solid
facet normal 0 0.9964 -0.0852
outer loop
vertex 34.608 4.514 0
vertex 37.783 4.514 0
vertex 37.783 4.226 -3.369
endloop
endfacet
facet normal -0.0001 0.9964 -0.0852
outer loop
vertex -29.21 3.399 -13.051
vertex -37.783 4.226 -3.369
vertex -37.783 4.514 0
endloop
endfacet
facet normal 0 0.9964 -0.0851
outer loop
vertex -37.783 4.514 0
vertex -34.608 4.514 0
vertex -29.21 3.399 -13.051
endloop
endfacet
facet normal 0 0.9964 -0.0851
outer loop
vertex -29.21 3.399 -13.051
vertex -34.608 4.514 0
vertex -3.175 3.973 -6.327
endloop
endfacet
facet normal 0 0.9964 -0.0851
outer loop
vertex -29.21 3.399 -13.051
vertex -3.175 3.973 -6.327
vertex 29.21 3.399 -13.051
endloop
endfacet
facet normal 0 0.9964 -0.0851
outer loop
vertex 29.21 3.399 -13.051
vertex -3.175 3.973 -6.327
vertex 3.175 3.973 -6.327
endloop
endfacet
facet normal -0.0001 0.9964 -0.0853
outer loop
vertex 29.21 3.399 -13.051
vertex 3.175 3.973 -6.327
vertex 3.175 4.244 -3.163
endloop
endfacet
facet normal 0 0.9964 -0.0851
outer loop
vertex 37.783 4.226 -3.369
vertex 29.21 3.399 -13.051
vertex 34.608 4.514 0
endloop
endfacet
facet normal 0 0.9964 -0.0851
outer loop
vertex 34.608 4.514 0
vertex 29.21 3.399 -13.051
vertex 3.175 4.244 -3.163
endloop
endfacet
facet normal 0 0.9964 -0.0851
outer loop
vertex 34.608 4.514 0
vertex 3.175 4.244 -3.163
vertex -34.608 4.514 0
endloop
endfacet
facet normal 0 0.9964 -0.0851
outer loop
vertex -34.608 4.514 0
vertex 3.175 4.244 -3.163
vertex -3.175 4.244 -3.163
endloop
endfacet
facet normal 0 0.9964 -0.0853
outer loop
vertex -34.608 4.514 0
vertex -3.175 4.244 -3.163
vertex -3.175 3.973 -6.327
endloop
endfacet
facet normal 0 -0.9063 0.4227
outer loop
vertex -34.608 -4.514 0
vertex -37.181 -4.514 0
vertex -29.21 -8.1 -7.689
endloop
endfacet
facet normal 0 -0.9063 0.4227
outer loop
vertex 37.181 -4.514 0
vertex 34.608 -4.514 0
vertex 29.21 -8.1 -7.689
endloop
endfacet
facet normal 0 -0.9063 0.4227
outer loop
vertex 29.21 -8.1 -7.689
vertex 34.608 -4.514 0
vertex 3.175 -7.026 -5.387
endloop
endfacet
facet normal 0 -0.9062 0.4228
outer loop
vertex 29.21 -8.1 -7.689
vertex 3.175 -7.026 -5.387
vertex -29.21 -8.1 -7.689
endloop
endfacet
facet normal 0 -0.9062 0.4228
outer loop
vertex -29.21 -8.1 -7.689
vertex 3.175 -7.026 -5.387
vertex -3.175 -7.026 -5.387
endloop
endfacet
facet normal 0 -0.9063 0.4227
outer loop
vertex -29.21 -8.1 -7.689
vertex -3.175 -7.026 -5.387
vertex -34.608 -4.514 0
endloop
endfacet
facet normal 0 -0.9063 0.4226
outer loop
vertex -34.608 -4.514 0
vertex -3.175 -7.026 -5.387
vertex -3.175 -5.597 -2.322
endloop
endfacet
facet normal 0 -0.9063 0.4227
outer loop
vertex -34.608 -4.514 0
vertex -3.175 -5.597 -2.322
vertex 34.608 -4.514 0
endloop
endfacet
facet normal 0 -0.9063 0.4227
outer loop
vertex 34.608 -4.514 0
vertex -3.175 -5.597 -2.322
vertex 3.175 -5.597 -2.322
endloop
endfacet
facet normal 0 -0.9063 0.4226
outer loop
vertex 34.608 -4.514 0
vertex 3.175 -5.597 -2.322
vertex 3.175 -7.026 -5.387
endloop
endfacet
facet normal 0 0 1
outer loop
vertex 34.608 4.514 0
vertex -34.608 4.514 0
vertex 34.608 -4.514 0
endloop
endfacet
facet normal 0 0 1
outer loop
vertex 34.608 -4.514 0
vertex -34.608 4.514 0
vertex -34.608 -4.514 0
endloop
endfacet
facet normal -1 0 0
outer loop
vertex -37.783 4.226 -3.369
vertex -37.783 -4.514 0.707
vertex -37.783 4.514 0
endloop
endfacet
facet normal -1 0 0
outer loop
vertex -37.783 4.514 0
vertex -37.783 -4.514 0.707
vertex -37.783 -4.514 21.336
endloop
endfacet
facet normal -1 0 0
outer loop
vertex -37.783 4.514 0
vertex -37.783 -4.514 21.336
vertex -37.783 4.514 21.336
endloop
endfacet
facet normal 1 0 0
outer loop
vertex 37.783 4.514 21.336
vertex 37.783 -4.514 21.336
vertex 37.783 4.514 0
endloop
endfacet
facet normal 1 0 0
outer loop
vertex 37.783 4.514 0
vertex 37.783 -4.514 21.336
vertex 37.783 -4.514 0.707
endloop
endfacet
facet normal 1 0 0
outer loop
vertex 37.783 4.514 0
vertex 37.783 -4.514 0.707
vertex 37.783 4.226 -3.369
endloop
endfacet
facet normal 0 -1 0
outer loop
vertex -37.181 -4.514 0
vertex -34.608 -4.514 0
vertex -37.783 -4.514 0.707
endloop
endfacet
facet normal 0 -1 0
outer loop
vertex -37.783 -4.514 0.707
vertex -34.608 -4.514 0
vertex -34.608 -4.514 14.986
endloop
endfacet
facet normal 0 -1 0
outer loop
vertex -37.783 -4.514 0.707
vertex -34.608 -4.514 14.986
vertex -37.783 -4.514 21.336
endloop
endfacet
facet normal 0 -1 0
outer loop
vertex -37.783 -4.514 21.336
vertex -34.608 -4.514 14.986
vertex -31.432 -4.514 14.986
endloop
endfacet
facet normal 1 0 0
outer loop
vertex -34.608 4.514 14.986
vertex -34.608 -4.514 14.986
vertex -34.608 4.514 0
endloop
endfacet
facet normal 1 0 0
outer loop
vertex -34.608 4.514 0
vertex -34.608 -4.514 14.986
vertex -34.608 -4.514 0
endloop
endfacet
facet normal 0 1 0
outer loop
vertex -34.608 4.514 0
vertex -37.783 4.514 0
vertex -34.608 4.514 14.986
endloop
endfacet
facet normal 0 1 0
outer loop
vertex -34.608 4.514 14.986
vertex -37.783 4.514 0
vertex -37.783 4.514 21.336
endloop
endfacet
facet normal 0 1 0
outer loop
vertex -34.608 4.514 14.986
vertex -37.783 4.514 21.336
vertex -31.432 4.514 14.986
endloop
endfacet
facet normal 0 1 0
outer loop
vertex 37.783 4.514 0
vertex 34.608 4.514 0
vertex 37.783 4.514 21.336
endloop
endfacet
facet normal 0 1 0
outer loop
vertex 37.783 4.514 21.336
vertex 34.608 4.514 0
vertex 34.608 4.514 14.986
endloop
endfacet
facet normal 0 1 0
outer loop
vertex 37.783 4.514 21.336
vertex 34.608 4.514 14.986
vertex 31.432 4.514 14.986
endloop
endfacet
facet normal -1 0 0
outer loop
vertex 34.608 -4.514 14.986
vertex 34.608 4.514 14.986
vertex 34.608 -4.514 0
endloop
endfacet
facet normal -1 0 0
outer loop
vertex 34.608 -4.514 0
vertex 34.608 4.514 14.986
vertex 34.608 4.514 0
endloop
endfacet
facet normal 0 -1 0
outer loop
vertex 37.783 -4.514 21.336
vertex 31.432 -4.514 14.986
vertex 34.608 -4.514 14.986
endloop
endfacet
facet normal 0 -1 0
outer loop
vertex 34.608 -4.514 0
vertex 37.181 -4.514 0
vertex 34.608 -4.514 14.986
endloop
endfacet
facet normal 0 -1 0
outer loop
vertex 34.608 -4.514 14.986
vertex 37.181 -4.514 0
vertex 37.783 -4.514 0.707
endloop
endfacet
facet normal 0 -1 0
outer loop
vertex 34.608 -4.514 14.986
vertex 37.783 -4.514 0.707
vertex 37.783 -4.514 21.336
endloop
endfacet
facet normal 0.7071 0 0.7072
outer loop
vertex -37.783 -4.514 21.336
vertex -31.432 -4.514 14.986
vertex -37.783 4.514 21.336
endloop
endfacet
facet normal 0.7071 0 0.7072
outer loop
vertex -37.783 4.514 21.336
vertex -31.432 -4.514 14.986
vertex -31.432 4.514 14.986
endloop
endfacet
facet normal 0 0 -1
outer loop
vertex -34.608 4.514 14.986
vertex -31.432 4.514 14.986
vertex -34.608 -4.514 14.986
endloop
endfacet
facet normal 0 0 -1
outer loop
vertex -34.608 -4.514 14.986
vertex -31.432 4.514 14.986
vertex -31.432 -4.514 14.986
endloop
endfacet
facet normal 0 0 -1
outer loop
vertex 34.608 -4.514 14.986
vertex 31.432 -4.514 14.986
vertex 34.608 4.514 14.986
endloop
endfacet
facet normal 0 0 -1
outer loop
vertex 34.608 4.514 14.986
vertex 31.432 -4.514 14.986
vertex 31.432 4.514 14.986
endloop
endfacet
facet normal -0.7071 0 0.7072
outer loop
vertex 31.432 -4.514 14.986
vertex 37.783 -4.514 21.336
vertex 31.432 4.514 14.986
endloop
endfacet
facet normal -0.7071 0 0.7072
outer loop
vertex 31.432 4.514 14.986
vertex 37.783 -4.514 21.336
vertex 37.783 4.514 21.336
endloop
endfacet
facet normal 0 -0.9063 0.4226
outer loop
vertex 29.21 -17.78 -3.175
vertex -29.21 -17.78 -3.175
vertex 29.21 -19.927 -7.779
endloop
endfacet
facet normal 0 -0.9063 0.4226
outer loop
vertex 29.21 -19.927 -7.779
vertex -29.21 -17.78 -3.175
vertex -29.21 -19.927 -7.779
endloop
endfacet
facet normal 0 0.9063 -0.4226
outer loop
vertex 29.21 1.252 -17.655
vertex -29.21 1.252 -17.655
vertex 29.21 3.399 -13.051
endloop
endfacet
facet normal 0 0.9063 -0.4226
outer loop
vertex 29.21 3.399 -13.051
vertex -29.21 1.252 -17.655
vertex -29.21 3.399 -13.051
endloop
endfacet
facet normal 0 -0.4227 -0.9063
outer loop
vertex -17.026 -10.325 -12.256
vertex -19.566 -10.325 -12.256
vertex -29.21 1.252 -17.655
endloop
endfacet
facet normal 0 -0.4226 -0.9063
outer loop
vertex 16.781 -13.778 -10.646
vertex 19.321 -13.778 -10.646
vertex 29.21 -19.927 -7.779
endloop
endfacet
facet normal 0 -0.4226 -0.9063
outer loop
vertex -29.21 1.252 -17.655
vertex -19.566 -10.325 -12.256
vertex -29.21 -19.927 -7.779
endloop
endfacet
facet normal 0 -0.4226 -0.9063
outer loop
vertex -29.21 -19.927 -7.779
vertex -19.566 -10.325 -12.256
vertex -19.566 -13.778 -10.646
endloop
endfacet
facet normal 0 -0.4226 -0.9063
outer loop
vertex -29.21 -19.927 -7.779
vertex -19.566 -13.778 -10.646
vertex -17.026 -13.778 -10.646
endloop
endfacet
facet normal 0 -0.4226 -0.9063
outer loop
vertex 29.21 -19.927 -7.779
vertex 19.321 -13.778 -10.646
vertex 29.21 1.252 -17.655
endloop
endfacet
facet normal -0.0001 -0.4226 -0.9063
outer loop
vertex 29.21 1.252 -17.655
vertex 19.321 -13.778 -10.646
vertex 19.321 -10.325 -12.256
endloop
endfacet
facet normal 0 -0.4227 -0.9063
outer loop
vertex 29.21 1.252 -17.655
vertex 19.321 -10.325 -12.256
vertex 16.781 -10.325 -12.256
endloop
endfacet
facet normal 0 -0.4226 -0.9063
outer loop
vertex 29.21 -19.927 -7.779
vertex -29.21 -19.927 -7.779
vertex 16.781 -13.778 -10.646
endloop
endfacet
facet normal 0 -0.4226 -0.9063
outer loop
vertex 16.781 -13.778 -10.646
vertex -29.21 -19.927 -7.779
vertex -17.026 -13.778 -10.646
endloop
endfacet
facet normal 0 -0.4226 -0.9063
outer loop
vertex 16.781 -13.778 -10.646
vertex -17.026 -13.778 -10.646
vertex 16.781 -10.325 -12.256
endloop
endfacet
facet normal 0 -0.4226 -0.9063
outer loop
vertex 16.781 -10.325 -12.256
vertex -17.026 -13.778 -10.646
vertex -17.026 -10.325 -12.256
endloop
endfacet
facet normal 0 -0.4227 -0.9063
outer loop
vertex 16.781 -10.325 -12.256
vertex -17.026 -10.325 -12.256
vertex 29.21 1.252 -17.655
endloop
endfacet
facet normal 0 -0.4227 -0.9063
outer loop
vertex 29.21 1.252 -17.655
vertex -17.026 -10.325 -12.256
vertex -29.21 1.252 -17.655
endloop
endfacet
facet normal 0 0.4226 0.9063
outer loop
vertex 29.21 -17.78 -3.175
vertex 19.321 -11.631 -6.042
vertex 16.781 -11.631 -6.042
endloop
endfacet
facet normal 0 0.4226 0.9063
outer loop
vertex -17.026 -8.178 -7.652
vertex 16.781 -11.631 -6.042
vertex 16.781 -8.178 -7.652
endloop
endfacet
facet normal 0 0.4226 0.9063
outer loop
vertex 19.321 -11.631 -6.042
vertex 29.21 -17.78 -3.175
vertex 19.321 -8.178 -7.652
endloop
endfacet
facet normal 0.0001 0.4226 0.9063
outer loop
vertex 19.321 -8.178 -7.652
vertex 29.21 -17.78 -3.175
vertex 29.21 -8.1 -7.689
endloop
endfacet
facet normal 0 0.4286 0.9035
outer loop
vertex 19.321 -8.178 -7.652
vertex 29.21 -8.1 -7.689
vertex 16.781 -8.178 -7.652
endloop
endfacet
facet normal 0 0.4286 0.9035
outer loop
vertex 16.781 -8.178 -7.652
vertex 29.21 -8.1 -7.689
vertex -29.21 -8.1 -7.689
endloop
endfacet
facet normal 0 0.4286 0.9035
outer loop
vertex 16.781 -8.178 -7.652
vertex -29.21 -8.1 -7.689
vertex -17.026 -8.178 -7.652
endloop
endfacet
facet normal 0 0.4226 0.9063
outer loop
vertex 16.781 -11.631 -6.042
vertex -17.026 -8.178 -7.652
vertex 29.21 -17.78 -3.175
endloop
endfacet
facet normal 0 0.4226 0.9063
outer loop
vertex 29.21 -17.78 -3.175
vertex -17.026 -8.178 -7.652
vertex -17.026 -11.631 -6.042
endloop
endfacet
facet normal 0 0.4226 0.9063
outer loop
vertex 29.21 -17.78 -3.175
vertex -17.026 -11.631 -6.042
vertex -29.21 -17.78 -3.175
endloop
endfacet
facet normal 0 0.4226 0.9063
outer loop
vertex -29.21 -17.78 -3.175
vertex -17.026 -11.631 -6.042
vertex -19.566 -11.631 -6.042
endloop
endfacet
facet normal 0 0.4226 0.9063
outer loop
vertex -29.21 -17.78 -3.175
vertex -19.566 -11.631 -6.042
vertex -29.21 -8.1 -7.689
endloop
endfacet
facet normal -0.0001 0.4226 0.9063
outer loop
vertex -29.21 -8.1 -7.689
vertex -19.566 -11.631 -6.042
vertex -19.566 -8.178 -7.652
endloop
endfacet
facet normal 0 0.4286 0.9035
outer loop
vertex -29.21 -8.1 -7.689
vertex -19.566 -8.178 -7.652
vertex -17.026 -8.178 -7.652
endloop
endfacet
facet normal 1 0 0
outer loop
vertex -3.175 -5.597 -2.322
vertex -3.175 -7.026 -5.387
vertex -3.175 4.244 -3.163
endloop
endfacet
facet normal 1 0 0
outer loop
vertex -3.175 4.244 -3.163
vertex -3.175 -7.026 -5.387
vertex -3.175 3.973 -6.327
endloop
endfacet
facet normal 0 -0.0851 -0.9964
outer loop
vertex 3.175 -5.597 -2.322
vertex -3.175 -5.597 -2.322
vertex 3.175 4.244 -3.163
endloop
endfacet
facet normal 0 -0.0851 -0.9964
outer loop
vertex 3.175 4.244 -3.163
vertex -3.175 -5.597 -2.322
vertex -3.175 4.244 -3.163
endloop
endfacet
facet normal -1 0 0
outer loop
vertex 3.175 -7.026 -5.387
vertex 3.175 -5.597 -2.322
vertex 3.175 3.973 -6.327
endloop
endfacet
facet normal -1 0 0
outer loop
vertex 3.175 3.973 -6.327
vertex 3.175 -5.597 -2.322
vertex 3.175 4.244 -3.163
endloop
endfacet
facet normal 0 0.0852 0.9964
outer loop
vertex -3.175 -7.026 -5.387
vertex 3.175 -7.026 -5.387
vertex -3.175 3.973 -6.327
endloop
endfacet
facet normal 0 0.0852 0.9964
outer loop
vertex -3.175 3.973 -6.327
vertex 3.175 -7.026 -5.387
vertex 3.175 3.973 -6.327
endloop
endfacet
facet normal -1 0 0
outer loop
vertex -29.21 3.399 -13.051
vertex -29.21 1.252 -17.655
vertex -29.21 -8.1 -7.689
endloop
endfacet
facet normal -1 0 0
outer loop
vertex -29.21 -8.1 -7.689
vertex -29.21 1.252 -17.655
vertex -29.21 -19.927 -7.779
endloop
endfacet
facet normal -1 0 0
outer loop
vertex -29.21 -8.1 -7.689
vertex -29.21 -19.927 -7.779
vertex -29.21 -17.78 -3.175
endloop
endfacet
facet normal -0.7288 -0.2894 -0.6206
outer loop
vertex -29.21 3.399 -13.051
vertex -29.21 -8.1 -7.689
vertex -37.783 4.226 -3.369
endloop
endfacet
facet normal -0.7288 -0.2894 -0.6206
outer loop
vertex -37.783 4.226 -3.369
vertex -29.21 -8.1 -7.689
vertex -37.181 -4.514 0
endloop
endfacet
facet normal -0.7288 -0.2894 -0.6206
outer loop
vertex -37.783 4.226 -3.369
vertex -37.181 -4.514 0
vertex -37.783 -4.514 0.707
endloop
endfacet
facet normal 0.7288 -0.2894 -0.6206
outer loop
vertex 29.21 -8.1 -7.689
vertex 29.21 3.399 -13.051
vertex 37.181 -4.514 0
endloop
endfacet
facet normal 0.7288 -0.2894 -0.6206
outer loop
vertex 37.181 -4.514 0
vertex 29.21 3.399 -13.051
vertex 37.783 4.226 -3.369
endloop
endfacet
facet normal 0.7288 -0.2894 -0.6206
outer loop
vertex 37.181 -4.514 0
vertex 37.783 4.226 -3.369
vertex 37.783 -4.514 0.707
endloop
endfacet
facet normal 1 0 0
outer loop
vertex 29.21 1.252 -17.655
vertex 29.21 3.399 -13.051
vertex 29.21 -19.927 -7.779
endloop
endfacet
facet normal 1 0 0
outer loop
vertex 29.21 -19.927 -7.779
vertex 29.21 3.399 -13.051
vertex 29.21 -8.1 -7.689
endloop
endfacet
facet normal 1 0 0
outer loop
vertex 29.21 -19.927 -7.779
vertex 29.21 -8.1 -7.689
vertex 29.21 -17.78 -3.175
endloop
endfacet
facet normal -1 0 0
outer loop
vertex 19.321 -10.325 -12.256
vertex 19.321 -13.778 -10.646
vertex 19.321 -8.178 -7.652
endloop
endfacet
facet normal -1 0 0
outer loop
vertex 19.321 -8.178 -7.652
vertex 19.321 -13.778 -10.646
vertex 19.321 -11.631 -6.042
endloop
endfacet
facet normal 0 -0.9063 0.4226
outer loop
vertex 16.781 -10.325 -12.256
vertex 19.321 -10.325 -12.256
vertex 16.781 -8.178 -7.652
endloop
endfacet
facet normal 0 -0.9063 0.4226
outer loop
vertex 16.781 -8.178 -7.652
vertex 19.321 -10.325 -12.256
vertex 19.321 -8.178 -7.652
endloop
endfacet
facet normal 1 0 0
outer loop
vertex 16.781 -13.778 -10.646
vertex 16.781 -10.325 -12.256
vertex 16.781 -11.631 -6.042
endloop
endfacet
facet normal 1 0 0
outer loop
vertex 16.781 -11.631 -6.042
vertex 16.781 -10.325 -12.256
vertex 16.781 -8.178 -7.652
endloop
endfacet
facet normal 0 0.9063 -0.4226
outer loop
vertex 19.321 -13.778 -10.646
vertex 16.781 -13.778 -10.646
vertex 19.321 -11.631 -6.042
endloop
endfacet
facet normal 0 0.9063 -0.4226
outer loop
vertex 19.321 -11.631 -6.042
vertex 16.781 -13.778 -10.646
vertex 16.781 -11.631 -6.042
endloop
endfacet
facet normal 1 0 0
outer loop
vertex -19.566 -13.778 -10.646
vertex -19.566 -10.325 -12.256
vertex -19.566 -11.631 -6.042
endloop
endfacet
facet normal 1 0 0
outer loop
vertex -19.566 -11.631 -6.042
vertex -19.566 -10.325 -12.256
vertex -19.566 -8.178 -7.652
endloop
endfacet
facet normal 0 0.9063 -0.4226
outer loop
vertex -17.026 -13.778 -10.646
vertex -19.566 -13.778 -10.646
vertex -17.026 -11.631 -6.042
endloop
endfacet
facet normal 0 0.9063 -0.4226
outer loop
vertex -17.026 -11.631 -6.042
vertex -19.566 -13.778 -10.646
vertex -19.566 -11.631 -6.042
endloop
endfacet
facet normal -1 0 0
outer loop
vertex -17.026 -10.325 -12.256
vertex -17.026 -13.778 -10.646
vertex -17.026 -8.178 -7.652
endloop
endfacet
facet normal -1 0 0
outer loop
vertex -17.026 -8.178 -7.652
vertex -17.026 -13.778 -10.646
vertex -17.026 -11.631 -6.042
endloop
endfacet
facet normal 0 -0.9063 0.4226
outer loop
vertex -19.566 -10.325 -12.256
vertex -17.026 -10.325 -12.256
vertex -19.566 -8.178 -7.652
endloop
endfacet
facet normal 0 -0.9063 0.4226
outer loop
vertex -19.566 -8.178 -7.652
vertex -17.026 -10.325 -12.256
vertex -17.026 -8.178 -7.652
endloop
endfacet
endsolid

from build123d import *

# Parameters (mm, degrees)
SKETCH1_W                      = 75.565
SKETCH1_H                      = 35.56
BOSS_EXTRUDE1_DEPTH            = 3.175
SKETCH6_W                      = 3.175
SKETCH6_H                      = 9.028368652
BOSS_EXTRUDE4_DEPTH            = 14.986
BOSS_EXTRUDE6_DEPTH            = 9.028368652
BOSS_EXTRUDE7_DEPTH            = 75.565
SKETCH10_W                     = 75.565
SKETCH10_H                     = 23.368
BOSS_EXTRUDE8_DEPTH            = 5.08
CUT_EXTRUDE1_DEPTH             = 82.008490267
CUT_EXTRUDE2_REACH             = 51.95
SKETCH12_W                     = 6.35
SKETCH12_H                     = 3.175
CUT_EXTRUDE2_DIRECTION_2_DEPTH = 50.950000932
CUT_EXTRUDE3_DEPTH             = 54.096105705
CUT_EXTRUDE4_REACH             = 55.451
SKETCH14_W                     = 2.54
SKETCH14_H                     = 3.81


with BuildPart() as part:
    # Sketch1 → Boss-Extrude1 (new body)
    with BuildSketch(Plane.XY):
        Rectangle(SKETCH1_W, SKETCH1_H)
    extrude(amount=-BOSS_EXTRUDE1_DEPTH)

    # Sketch6 → Boss-Extrude4 (add)
    with BuildSketch(Plane.XY):
        with Locations((-36.195, 0)):
            Rectangle(SKETCH6_W, SKETCH6_H)
        with Locations((36.195, 0)):
            Rectangle(SKETCH6_W, SKETCH6_H)
    extrude(amount=BOSS_EXTRUDE4_DEPTH)

    # Sketch8 → Boss-Extrude6 (add)
    with BuildSketch(Plane.XZ.offset(4.514184326)):
        Polygon((-37.7825, 14.986), (-31.4325, 14.986), (-37.7825, 21.336), align=None)
        Polygon((37.7825, 14.986), (31.4325, 14.986), (37.7825, 21.336), align=None)
    extrude(amount=-BOSS_EXTRUDE6_DEPTH)

    # Sketch9 → Boss-Extrude7 (add)
    with BuildSketch(Plane.ZY.offset(37.7825)):
        Polygon((-3.175, 17.78), (-16.795270199, 11.4287637), (-3.175, -17.78), align=None)
    extrude(amount=-BOSS_EXTRUDE7_DEPTH)

    # Sketch10 → Boss-Extrude8 (add)
    with BuildSketch(Plane(origin=(0, -4.391713703, -9.41806043), x_dir=(-1, 0, 0), z_dir=(0, -0.4226182617407007, -0.9063077870366493))):
        with Locations((0, -3.088339472)):
            Rectangle(SKETCH10_W, SKETCH10_H)
    extrude(amount=BOSS_EXTRUDE8_DEPTH)

    # Sketch11 → Cut-Extrude1 (cut, through all)
    with BuildSketch(Plane.ZY.offset(37.7825)):
        Polygon((-13.05074354, 3.398600367), (0, 4.514184326), (36.888684706, 18.275511072), (5.286071508, 25.150339228), (-30.3838484, 8.233222823), align=None)
        Polygon((-3.175, -17.78), (-7.689027521, -8.099636743), (0, -4.514184326), (40.158547499, -20.406390647), (15.599703883, -25.394905756), align=None)
    extrude(amount=-CUT_EXTRUDE1_DEPTH, mode=Mode.SUBTRACT)

    # Cut-Extrude2: up to this plane
    cut_extrude2_end = Plane(origin=(37.7825, -8.099636743, -7.689027521), z_dir=(0, 0.9063077870366495, -0.4226182617407008))
    # Sketch12 → Cut-Extrude2 (cut, up to the surface)
    with BuildSketch(Plane(origin=(0, 4.481438837, -0.38307559), x_dir=(1, 0, 0), z_dir=(0, 0.9963664433600627, -0.08516989225083536)), mode=Mode.PRIVATE) as cut_extrude2_sk1:
        with Locations((0, 4.378027407)):
            Rectangle(SKETCH12_W, SKETCH12_H)
    cut_extrude2_tool1 = split(extrude(cut_extrude2_sk1.sketch, amount=-CUT_EXTRUDE2_REACH, mode=Mode.PRIVATE), bisect_by=cut_extrude2_end, keep=Keep.BOTH, mode=Mode.PRIVATE)
    add(cut_extrude2_tool1.solids().sort_by_distance((0, 4.108563, -4.745195))[0], mode=Mode.SUBTRACT)

    # Sketch12 → Cut-Extrude2 direction 2 (cut)
    with BuildSketch(Plane(origin=(0, 4.481438837, -0.38307559), x_dir=(1, 0, 0), z_dir=(0, 0.9963664433600627, -0.08516989225083536))):
        with Locations((0, 4.378027407)):
            Rectangle(SKETCH12_W, SKETCH12_H)
    extrude(amount=CUT_EXTRUDE2_DIRECTION_2_DEPTH, mode=Mode.SUBTRACT)

    # Sketch13 → Cut-Extrude3 (cut, through all)
    with BuildSketch(Plane(origin=(0, 7.790314071, -3.632683111), x_dir=(1, 0, 0), z_dir=(0, 0.9063077870366493, -0.4226182617407007))):
        Polygon((-29.21, 10.391679918), (-37.7825, 1.267223267), (-37.7825, 11.639630657), (-37.7825, 15.471679918), (-29.21, 15.471679918), align=None)
        Polygon((37.7825, 1.267223267), (37.7825, 11.639630657), (37.7825, 15.471679918), (29.21, 15.471679918), (29.21, 10.391679918), align=None)
    extrude(amount=-CUT_EXTRUDE3_DEPTH, mode=Mode.SUBTRACT)

    # Sketch14 → Cut-Extrude4 (cut, up to next)
    with BuildSketch(Plane(origin=(0, -6.538614473, -14.022103988), x_dir=(-1, 0, 0), z_dir=(0, -0.4226182617407007, -0.9063077870366494)), mode=Mode.PRIVATE) as cut_extrude4_sk1:
        with Locations((-18.050542255, -6.082892111)):
            Rectangle(SKETCH14_W, SKETCH14_H)
    cut_extrude4_tool1 = extrude(cut_extrude4_sk1.sketch, amount=-CUT_EXTRUDE4_REACH, mode=Mode.PRIVATE) & part.part
    # Sketch14 → Cut-Extrude4 (cut, up to next)
    with BuildSketch(Plane(origin=(0, -6.538614473, -14.022103988), x_dir=(-1, 0, 0), z_dir=(0, -0.4226182617407007, -0.9063077870366494)), mode=Mode.PRIVATE) as cut_extrude4_sk2:
        with Locations((18.295855998, -6.082892111)):
            Rectangle(SKETCH14_W, SKETCH14_H)
    cut_extrude4_tool2 = extrude(cut_extrude4_sk2.sketch, amount=-CUT_EXTRUDE4_REACH, mode=Mode.PRIVATE) & part.part
    add(cut_extrude4_tool1.solids().sort_by_distance((18.050542, -12.051587, -11.451363))[0], mode=Mode.SUBTRACT)
    add(cut_extrude4_tool2.solids().sort_by_distance((-18.295856, -12.051587, -11.451363))[0], mode=Mode.SUBTRACT)


solid = part.part
